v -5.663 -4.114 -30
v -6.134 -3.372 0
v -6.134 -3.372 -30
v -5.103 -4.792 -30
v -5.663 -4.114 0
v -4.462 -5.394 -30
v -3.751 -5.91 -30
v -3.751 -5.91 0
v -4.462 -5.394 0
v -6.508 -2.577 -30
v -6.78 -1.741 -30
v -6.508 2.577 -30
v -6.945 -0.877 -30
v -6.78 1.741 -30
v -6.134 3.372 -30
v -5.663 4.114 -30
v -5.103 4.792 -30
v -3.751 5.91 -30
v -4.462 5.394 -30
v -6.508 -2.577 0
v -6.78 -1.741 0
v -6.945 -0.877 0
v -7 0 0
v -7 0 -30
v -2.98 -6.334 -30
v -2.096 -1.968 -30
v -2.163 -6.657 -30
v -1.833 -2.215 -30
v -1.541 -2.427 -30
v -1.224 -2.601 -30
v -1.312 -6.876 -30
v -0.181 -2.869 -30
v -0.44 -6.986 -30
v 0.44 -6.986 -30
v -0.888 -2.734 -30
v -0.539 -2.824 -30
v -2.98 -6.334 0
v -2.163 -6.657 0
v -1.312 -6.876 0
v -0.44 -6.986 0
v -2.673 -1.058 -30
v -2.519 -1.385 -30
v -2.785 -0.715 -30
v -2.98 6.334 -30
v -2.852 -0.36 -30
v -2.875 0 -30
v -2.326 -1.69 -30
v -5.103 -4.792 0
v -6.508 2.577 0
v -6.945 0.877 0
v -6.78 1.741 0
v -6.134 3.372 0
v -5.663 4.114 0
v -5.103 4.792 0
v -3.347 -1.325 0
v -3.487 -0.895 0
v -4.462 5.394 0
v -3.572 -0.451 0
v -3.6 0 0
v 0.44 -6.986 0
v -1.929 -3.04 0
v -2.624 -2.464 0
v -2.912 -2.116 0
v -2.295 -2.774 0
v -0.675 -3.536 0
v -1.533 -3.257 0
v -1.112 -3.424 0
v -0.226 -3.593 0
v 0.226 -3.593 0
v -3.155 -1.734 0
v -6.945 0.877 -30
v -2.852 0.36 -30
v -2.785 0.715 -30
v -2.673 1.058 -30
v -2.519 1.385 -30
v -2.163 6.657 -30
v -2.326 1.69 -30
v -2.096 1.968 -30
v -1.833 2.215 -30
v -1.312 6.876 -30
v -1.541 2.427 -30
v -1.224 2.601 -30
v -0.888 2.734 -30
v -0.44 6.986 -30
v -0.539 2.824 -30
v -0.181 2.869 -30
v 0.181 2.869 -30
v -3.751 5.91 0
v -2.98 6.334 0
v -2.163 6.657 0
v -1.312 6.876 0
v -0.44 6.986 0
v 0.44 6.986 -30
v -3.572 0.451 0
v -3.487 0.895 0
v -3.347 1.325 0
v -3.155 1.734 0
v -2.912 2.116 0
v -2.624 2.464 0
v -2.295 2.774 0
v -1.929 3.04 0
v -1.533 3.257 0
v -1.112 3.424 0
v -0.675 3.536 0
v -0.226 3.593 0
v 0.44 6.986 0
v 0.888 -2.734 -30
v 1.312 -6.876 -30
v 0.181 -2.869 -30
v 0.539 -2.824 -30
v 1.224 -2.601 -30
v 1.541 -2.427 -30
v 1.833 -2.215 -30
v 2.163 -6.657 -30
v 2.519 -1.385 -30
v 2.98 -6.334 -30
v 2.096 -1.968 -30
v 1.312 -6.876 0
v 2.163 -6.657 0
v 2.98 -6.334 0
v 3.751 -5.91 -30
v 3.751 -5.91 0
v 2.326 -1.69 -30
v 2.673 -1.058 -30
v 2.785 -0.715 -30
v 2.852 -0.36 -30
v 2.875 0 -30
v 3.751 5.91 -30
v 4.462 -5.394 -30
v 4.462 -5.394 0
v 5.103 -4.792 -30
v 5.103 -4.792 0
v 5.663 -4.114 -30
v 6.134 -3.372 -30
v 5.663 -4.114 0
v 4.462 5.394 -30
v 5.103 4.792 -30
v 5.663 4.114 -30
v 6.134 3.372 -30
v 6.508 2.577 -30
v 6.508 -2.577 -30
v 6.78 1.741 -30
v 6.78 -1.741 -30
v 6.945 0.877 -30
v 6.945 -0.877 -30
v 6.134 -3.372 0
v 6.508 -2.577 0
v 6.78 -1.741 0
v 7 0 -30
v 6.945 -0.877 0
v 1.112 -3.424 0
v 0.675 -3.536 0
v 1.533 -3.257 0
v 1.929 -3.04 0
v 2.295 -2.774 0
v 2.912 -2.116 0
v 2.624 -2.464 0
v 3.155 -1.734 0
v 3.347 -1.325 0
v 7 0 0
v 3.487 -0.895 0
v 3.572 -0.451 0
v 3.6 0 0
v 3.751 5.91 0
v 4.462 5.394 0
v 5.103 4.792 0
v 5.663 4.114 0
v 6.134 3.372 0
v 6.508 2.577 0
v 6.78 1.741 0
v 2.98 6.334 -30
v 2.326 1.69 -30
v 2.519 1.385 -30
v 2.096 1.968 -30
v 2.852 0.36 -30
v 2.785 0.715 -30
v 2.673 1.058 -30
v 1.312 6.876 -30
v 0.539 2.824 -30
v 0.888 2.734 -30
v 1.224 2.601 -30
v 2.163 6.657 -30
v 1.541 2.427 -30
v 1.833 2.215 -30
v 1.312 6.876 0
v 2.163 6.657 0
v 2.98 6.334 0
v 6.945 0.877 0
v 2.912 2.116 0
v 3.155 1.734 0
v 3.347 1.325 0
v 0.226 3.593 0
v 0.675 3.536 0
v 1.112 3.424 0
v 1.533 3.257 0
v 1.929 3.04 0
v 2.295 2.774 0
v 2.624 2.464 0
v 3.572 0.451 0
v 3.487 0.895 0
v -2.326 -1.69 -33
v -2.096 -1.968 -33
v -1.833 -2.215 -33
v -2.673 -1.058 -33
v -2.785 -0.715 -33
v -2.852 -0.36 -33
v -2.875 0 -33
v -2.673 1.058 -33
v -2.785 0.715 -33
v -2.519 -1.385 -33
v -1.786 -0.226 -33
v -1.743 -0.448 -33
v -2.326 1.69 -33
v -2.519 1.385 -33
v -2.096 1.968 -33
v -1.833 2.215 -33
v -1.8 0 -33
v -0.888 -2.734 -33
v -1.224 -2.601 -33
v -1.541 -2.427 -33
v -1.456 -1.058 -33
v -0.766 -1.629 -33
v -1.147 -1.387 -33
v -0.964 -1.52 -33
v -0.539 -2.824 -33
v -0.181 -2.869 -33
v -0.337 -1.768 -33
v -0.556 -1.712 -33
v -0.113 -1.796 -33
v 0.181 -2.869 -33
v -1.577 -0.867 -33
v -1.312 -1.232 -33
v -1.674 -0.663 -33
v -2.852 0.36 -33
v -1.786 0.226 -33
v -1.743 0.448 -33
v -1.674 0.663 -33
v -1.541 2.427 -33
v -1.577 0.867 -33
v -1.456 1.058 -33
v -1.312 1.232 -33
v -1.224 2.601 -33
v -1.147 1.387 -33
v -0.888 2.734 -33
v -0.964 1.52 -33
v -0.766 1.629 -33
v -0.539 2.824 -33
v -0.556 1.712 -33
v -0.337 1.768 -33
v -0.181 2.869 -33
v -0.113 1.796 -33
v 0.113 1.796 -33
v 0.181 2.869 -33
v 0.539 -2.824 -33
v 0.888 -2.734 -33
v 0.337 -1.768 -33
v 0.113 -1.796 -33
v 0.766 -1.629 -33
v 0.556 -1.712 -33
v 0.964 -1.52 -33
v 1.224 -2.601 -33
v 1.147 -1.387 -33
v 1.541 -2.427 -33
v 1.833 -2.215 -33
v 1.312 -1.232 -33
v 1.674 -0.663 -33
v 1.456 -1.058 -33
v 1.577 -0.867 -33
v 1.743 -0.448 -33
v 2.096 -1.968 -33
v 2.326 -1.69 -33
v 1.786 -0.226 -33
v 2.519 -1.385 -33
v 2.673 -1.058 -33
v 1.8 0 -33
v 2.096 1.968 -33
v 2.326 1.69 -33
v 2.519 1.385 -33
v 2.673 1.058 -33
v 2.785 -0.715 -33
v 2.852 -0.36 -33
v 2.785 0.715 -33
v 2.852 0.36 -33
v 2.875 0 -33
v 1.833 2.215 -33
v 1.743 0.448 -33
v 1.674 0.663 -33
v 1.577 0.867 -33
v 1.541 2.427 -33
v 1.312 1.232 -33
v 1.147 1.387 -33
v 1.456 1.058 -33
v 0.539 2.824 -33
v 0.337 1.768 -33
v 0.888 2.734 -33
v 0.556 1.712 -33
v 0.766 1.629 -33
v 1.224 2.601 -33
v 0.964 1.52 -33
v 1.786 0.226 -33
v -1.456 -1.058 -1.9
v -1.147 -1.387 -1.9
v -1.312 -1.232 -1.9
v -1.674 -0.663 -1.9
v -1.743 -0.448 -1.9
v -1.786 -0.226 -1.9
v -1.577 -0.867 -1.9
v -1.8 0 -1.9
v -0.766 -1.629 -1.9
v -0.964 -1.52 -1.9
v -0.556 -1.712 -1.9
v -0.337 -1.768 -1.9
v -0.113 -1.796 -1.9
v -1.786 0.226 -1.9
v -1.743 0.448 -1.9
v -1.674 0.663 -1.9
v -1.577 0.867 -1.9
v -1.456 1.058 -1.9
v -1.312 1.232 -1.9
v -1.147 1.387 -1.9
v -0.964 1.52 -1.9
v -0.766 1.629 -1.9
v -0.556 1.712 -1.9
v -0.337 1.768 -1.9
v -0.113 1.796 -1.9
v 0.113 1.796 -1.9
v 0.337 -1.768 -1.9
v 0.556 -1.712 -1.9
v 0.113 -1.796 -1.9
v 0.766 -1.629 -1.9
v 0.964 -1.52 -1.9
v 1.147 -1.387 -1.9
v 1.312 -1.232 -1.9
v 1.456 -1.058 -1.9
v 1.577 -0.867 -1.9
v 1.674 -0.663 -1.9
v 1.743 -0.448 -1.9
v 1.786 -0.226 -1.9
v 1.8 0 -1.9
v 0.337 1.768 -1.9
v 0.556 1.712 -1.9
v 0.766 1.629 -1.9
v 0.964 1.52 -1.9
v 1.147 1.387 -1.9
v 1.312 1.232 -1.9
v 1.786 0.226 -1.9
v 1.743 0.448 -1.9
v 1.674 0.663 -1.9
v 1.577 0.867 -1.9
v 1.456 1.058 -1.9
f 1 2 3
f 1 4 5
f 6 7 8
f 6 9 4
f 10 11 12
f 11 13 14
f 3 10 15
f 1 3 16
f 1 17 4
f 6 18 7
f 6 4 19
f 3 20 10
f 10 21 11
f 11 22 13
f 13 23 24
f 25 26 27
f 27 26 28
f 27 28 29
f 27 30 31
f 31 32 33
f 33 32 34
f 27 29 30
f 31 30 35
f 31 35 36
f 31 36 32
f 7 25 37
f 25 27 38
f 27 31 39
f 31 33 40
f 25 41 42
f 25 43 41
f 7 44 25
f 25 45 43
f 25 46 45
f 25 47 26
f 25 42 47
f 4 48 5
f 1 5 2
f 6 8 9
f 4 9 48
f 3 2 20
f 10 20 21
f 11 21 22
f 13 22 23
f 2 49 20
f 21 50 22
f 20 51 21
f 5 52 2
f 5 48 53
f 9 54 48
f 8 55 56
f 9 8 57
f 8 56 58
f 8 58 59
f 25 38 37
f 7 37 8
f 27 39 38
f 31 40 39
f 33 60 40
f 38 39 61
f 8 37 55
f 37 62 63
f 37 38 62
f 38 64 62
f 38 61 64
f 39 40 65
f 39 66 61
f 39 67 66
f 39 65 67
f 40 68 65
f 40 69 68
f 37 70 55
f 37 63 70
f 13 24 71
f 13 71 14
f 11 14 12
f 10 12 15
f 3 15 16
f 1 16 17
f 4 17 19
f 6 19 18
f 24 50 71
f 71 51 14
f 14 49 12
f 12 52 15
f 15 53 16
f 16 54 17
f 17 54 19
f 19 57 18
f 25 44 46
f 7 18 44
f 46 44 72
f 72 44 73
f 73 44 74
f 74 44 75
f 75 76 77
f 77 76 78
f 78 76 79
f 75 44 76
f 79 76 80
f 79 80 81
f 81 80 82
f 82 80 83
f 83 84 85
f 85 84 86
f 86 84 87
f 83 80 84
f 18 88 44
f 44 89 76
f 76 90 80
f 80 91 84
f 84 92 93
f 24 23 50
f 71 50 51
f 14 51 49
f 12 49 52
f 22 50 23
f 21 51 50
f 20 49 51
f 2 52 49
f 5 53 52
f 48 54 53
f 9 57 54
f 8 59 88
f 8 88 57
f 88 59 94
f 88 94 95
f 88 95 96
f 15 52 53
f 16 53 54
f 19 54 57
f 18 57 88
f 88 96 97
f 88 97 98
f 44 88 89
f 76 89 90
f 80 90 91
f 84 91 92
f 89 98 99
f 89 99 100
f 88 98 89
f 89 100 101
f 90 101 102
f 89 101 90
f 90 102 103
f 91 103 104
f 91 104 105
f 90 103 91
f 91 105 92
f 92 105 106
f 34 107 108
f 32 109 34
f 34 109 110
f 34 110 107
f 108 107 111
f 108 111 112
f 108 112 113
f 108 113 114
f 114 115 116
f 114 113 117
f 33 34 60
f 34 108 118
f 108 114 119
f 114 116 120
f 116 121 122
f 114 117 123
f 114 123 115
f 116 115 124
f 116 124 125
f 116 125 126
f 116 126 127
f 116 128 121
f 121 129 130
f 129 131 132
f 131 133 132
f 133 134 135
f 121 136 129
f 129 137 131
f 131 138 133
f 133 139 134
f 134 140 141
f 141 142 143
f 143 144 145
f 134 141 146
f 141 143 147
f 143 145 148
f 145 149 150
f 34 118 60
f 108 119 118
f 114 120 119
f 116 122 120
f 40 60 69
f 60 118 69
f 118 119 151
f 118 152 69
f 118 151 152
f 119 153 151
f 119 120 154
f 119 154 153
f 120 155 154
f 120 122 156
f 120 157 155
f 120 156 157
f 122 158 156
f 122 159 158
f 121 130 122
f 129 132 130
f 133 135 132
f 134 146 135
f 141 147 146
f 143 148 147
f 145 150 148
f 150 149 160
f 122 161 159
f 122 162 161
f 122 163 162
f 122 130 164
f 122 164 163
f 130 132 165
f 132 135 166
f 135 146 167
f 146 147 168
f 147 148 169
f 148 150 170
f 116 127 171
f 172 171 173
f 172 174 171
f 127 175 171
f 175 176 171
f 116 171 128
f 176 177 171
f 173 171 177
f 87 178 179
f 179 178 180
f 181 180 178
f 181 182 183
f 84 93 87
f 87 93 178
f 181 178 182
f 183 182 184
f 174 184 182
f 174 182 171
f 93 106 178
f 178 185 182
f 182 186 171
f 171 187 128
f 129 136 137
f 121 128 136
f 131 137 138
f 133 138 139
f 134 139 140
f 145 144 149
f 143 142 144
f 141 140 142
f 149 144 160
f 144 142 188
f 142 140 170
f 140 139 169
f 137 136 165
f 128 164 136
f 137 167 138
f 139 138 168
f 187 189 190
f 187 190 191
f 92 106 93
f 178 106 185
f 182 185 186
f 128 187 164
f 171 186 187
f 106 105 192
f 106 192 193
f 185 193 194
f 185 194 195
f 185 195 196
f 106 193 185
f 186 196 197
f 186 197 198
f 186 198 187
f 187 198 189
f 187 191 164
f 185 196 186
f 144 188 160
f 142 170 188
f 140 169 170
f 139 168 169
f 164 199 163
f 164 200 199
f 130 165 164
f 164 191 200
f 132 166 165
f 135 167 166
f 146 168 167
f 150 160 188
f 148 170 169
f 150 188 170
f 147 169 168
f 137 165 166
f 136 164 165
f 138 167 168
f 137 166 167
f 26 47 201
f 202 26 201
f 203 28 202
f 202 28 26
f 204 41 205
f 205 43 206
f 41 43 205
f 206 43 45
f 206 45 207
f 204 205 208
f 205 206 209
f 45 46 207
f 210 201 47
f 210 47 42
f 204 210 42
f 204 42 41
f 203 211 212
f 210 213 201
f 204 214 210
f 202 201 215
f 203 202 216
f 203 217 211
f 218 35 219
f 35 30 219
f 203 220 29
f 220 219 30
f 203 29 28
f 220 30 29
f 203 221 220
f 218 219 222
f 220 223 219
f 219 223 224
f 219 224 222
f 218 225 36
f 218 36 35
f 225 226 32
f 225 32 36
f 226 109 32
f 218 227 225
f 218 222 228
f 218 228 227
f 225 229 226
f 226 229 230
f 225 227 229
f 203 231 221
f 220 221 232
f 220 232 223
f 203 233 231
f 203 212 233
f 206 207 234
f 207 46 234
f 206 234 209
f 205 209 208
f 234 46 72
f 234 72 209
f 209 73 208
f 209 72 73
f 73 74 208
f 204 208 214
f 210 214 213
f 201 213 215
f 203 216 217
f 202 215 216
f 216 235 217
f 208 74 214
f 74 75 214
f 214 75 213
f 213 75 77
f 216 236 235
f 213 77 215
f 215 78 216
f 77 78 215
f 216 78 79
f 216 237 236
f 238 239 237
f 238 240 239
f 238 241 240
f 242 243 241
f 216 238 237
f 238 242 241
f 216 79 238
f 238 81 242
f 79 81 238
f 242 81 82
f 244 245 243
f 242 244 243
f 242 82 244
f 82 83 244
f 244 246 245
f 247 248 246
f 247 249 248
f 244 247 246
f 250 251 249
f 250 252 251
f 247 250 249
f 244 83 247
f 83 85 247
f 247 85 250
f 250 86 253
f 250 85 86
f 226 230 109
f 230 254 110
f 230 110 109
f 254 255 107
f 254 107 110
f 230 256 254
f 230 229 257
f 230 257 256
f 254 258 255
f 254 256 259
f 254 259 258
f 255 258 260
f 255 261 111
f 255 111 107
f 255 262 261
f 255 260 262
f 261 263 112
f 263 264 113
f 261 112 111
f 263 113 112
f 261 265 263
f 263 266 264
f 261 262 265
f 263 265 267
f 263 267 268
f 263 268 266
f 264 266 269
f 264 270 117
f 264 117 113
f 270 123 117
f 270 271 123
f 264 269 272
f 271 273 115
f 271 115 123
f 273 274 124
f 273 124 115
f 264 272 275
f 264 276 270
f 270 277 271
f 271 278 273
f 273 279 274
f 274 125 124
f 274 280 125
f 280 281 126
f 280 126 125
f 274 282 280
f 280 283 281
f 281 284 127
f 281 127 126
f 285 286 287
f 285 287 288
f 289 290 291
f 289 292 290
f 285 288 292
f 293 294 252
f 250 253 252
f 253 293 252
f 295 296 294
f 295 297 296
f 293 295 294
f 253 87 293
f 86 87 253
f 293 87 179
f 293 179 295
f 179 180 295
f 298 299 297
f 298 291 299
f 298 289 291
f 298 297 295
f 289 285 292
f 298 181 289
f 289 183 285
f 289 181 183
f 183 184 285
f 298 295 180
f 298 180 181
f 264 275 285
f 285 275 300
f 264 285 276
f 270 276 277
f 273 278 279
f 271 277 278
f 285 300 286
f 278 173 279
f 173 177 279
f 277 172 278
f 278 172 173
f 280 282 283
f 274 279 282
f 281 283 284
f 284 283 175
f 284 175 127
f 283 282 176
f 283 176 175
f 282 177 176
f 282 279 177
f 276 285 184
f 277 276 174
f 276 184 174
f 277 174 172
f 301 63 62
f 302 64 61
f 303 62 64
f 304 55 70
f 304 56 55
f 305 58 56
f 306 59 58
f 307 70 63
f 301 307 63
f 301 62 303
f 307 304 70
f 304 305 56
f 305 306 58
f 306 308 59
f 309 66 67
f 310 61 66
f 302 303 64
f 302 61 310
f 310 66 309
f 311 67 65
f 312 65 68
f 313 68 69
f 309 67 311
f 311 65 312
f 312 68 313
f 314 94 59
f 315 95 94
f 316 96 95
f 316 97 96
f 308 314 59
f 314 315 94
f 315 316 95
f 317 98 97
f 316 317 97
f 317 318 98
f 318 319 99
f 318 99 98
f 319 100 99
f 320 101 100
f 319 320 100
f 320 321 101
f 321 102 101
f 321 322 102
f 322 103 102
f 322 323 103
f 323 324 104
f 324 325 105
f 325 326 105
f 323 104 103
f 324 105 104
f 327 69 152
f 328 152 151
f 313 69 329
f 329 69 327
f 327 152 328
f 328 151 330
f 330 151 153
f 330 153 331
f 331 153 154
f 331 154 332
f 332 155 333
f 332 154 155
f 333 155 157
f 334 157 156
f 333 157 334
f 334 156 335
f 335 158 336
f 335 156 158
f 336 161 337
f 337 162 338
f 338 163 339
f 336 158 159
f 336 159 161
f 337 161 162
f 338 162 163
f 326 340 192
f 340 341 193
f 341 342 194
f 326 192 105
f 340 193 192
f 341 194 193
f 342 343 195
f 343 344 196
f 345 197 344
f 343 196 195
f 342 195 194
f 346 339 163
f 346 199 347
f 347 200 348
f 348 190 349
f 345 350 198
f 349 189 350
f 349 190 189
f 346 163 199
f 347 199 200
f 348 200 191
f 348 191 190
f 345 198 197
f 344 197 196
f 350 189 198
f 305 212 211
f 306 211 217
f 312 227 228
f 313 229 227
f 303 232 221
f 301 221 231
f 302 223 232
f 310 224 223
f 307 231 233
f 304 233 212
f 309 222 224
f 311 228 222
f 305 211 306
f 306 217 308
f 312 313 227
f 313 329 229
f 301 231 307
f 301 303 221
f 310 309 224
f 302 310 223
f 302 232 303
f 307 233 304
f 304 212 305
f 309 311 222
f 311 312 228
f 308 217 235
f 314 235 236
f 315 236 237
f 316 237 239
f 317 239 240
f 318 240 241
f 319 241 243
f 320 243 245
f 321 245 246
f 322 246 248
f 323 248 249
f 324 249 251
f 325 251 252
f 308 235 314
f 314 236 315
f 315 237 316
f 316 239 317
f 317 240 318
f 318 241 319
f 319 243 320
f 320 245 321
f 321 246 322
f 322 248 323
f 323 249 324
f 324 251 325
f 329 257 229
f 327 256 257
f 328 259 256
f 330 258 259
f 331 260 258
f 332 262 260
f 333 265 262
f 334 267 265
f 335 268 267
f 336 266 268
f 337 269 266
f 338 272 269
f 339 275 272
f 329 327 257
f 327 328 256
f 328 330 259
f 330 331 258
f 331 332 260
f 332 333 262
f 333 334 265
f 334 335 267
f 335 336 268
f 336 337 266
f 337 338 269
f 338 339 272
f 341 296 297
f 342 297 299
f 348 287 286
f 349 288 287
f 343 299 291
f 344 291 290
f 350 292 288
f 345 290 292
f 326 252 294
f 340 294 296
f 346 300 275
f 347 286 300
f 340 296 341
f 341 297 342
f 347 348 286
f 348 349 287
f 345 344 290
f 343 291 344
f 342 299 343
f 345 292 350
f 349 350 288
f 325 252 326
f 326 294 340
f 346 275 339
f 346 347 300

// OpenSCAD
$fn = 50;

difference() {
	union() {
		translate(v = [0, 0, -30.0]) {
			cylinder(h = 30, r = 7.0);
		}
		#translate(v = [0, 0, -33.0]) {
			cylinder(h = 33, r = 2.875);
		}
	}
	union() {
		translate(v = [0, 0, 0]) {
			rotate(a = [0, 0, 0]) {
				difference() {
					union() {
						translate(v = [0, 0, -33.0]) {
							cylinder(h = 33, r = 1.5);
						}
						translate(v = [0, 0, -1.9]) {
							cylinder(h = 1.9, r1 = 1.8, r2 = 3.6);
						}
						translate(v = [0, 0, -33.0]) {
							cylinder(h = 33, r = 1.8);
						}
						translate(v = [0, 0, -33.0]) {
							cylinder(h = 33, r = 1.5);
						}
					}
					union();
				}
			}
		}
	}
}
